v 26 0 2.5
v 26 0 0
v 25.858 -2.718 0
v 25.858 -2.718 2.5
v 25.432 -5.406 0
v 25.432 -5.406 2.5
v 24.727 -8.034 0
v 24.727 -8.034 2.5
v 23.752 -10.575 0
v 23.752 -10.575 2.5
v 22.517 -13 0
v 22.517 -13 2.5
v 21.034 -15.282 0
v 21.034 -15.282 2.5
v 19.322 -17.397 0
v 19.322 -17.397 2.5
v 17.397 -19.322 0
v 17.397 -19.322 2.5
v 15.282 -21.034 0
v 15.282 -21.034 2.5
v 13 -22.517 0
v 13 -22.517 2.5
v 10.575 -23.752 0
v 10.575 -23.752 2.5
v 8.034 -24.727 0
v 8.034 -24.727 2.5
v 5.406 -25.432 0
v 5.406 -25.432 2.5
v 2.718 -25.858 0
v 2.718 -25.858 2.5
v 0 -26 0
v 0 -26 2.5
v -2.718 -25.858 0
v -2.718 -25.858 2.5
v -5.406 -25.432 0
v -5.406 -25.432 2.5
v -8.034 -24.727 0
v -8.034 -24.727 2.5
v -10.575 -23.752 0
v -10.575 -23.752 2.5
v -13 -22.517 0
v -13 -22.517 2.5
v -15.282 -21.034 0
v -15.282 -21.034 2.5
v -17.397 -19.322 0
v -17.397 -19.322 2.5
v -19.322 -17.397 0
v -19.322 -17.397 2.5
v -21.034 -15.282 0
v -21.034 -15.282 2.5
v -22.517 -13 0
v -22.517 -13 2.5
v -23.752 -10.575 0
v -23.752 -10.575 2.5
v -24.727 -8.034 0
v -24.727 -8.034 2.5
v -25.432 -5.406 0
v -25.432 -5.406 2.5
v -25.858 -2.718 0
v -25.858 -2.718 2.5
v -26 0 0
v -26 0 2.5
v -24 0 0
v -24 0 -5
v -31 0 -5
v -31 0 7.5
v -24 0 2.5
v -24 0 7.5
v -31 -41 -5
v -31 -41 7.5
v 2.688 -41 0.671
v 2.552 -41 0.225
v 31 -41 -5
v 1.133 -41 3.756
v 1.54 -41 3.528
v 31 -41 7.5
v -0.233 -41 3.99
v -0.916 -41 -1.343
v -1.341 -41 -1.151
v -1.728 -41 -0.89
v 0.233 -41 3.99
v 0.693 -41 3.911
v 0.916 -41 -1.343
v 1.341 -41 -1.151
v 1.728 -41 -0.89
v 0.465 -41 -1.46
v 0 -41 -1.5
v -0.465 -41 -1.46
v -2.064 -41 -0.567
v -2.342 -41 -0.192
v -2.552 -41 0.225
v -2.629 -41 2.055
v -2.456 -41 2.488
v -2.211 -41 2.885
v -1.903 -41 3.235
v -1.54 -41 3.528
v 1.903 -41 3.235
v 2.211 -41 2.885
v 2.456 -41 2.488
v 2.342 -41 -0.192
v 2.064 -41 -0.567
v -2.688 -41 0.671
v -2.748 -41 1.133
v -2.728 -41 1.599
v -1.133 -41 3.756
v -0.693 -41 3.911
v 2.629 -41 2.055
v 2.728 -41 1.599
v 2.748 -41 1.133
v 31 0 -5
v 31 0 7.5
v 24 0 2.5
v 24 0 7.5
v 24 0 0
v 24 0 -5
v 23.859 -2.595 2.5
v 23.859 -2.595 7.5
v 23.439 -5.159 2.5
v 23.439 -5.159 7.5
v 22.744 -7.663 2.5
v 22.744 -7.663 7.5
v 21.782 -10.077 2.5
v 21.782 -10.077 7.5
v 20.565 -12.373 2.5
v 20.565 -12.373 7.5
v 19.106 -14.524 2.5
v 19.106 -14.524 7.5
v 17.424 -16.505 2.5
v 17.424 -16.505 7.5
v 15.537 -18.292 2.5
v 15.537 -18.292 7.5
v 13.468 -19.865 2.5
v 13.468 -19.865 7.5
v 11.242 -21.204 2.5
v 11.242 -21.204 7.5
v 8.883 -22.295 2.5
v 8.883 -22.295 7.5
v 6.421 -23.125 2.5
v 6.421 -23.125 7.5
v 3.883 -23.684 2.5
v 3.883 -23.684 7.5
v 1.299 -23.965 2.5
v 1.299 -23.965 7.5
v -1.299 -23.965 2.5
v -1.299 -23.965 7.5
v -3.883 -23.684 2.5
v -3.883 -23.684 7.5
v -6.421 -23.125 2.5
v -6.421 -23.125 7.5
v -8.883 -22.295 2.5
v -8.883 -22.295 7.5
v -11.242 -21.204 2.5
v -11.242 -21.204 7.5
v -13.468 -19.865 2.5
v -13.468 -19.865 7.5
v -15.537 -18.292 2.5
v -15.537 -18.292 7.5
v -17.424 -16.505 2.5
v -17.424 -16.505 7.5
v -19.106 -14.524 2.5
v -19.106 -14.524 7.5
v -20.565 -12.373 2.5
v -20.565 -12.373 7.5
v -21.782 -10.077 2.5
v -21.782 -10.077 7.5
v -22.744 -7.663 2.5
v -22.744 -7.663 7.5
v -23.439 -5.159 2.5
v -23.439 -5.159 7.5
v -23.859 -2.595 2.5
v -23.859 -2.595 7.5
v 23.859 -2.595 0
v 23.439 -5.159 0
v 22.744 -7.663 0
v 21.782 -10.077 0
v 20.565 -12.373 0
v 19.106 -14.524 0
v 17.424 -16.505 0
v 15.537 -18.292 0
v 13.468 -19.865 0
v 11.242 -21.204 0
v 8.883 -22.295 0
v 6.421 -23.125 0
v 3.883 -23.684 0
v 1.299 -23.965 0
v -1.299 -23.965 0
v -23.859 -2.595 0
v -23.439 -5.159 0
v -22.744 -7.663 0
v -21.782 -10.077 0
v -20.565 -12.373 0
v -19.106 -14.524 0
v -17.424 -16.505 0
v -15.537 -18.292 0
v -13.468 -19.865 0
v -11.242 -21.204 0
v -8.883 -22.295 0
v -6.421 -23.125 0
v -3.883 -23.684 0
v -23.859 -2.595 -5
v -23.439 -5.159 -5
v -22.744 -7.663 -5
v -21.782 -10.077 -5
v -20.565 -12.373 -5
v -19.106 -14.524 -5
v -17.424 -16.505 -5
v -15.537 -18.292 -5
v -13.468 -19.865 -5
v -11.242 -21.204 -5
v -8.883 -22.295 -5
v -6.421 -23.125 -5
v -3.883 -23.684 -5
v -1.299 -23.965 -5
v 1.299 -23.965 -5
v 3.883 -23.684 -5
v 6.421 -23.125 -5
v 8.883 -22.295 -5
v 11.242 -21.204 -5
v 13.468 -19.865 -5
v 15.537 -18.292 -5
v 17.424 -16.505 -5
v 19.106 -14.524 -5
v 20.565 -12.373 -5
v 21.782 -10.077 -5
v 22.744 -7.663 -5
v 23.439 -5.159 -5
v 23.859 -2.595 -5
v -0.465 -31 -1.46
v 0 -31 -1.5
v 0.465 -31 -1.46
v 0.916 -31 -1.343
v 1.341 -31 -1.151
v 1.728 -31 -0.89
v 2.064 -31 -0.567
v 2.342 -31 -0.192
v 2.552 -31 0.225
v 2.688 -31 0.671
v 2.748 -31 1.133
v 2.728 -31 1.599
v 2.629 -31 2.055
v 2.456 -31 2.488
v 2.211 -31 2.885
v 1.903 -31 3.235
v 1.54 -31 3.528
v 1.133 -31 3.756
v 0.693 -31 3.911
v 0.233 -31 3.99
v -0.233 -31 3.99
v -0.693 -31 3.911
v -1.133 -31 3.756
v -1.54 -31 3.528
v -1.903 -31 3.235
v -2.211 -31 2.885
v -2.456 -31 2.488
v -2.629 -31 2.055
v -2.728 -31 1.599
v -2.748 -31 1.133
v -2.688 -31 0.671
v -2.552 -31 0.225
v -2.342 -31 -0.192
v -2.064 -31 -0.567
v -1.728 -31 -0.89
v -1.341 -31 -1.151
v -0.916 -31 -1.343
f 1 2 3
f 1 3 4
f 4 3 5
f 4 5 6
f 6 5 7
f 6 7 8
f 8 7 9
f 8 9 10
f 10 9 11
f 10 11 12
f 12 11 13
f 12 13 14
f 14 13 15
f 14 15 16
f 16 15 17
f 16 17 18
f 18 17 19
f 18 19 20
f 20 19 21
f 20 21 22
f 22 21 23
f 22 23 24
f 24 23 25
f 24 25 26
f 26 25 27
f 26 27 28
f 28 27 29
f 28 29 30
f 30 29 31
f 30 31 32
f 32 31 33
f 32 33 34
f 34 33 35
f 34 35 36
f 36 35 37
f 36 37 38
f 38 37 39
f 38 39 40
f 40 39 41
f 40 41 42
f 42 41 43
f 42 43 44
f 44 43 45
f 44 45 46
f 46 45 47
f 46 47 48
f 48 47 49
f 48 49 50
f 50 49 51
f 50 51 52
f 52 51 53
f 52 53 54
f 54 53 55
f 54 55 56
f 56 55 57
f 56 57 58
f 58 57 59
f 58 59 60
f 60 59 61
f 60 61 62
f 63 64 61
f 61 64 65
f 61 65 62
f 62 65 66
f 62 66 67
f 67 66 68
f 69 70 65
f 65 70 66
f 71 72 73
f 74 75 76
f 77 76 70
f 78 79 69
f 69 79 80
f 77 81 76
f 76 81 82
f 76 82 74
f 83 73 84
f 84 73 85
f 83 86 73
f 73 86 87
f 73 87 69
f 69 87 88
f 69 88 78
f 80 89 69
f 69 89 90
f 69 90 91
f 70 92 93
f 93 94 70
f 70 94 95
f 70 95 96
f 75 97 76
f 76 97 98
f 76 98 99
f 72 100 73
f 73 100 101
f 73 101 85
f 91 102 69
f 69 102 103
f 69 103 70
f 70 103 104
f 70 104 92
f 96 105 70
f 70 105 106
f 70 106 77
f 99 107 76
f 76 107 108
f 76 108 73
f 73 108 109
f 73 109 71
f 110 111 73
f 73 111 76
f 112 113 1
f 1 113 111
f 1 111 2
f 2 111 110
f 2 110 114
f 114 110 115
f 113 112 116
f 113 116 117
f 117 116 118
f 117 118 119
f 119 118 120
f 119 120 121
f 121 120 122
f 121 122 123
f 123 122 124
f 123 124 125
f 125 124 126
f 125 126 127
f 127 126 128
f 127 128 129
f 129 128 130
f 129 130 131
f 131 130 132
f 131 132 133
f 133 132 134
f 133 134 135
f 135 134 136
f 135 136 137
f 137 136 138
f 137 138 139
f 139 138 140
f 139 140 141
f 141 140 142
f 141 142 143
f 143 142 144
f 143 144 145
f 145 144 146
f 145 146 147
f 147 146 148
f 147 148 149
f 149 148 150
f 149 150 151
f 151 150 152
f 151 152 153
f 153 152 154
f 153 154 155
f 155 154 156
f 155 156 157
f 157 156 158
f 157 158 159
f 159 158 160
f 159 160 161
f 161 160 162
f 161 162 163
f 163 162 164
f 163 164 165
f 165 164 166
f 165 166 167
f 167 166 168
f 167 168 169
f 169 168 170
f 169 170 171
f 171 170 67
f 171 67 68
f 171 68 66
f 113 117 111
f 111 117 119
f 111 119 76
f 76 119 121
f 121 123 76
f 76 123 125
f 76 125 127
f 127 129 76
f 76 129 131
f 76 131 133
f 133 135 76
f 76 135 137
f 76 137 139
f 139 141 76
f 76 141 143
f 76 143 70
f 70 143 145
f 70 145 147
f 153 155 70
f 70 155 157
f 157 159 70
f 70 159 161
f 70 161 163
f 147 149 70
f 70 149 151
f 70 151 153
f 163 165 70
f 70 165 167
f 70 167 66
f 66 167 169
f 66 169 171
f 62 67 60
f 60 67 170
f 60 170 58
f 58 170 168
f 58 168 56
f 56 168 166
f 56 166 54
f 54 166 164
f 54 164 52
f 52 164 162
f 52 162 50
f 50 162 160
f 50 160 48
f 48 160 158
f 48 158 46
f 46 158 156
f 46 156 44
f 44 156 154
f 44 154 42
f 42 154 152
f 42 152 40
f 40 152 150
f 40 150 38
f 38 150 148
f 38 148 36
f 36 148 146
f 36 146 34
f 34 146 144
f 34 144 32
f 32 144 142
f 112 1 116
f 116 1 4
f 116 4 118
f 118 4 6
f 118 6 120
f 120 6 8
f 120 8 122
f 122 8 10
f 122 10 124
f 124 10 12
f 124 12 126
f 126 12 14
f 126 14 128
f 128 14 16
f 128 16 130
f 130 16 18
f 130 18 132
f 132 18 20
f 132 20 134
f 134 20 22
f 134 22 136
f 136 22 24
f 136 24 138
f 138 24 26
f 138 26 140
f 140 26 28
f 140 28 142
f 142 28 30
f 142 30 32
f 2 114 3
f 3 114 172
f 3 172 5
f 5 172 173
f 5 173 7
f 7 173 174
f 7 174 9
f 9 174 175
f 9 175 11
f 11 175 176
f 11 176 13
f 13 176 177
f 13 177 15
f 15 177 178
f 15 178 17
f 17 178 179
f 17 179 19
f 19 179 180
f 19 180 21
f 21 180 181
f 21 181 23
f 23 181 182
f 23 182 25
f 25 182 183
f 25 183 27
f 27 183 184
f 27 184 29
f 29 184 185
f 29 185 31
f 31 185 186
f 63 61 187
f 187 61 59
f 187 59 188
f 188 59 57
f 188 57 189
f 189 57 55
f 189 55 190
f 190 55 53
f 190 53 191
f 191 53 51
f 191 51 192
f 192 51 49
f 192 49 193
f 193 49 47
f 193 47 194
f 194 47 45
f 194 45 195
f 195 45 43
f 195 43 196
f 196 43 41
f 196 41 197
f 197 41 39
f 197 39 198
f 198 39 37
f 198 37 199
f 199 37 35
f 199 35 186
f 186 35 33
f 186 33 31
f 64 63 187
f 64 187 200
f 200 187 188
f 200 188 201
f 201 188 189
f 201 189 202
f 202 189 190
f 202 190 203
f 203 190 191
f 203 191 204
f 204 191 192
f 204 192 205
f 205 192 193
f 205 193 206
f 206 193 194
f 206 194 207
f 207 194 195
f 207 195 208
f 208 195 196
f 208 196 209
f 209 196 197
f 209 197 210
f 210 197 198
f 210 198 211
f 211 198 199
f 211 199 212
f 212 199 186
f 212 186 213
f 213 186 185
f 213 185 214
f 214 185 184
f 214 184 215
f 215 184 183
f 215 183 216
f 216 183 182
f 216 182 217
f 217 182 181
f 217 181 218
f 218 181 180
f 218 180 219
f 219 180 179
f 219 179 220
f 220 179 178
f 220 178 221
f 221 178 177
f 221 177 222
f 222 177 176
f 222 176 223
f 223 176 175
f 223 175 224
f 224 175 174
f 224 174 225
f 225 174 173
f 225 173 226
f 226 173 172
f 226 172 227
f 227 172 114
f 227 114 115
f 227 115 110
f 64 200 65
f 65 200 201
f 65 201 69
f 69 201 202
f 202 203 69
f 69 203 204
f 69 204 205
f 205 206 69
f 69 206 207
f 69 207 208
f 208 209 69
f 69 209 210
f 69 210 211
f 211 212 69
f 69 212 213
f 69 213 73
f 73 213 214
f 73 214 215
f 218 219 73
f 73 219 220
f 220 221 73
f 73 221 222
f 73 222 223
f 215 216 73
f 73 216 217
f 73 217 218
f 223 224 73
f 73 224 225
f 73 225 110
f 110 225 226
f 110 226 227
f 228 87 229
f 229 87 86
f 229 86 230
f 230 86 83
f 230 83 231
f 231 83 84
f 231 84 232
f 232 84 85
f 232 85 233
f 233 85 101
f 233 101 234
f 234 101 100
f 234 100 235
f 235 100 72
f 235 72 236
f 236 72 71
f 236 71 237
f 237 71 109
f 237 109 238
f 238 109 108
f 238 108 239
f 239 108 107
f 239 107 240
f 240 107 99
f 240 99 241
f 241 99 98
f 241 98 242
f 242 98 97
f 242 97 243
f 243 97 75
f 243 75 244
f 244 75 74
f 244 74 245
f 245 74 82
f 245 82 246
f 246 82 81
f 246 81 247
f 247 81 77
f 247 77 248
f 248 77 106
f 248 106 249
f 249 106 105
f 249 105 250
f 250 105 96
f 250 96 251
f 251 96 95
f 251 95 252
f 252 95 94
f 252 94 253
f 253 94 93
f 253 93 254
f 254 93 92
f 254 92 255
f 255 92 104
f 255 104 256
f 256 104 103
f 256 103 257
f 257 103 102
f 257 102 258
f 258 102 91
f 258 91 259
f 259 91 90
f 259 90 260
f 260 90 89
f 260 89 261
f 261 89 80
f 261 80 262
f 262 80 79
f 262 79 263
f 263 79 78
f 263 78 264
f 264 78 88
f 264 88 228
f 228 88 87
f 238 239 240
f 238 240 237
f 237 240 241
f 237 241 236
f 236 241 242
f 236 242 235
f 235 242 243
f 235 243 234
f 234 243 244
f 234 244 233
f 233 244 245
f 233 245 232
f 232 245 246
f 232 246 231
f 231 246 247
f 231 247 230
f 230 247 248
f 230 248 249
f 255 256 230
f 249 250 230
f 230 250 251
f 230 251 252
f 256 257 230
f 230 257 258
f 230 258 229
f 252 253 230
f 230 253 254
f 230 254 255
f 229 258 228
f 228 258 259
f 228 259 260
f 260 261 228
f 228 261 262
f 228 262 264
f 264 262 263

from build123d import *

# Parameters (mm, degrees)
BOSS_EXTRUDE2_DEPTH = 2.5
BOSS_EXTRUDE3_DEPTH = 5
BOSS_EXTRUDE4_START = 5
BOSS_EXTRUDE4_DEPTH = 5
SKETCH4_R           = 2.75
CUT_EXTRUDE1_DEPTH  = 10


with BuildPart() as part:
    # Sketch1 → Boss-Extrude2 (new body)
    with BuildSketch(Plane.XY):
        with BuildLine():
            ThreePointArc((-26, 0), (0, -26), (26, 0))
            Line((26, 0), (31, 0))
            Line((31, 0), (31, -41))
            Line((31, -41), (-31, -41))
            Line((-31, -41), (-31, 0))
            Line((-31, 0), (-26, 0))
        make_face()
    extrude(amount=BOSS_EXTRUDE2_DEPTH)

    # Sketch2 → Boss-Extrude3 (add)
    with BuildSketch(Plane.XY.offset(2.5)):
        with BuildLine():
            Line((-24, 0), (-31, 0))
            Line((-31, 0), (-31, -41))
            Line((-31, -41), (31, -41))
            Line((31, -41), (31, 0))
            Line((31, 0), (24, 0))
            ThreePointArc((24, 0), (0, -24), (-24, 0))
        make_face()
    extrude(amount=BOSS_EXTRUDE3_DEPTH)

    # Sketch3 → Boss-Extrude4 (add)
    with BuildSketch(Plane(origin=(0, 0, 0), x_dir=(-1, 0, 0), z_dir=(0, 0, -1)).offset(BOSS_EXTRUDE4_START)):
        with BuildLine():
            Line((-24, 0), (-31, 0))
            Line((-31, 0), (-31, -41))
            Line((-31, -41), (31, -41))
            Line((31, -41), (31, 0))
            Line((31, 0), (24, 0))
            ThreePointArc((24, 0), (0, -24), (-24, 0))
        make_face()
    extrude(amount=-BOSS_EXTRUDE4_DEPTH)

    # Sketch4 → Cut-Extrude1 (cut)
    with BuildSketch(Plane(origin=(0, -41, 0), x_dir=(-1, 0, 0), z_dir=(0, -1, 0))):
        with Locations(Location((0, -1.25, 0), (0, 0, 90))):
            Circle(SKETCH4_R)
    extrude(amount=-CUT_EXTRUDE1_DEPTH, mode=Mode.SUBTRACT)


solid = part.part
